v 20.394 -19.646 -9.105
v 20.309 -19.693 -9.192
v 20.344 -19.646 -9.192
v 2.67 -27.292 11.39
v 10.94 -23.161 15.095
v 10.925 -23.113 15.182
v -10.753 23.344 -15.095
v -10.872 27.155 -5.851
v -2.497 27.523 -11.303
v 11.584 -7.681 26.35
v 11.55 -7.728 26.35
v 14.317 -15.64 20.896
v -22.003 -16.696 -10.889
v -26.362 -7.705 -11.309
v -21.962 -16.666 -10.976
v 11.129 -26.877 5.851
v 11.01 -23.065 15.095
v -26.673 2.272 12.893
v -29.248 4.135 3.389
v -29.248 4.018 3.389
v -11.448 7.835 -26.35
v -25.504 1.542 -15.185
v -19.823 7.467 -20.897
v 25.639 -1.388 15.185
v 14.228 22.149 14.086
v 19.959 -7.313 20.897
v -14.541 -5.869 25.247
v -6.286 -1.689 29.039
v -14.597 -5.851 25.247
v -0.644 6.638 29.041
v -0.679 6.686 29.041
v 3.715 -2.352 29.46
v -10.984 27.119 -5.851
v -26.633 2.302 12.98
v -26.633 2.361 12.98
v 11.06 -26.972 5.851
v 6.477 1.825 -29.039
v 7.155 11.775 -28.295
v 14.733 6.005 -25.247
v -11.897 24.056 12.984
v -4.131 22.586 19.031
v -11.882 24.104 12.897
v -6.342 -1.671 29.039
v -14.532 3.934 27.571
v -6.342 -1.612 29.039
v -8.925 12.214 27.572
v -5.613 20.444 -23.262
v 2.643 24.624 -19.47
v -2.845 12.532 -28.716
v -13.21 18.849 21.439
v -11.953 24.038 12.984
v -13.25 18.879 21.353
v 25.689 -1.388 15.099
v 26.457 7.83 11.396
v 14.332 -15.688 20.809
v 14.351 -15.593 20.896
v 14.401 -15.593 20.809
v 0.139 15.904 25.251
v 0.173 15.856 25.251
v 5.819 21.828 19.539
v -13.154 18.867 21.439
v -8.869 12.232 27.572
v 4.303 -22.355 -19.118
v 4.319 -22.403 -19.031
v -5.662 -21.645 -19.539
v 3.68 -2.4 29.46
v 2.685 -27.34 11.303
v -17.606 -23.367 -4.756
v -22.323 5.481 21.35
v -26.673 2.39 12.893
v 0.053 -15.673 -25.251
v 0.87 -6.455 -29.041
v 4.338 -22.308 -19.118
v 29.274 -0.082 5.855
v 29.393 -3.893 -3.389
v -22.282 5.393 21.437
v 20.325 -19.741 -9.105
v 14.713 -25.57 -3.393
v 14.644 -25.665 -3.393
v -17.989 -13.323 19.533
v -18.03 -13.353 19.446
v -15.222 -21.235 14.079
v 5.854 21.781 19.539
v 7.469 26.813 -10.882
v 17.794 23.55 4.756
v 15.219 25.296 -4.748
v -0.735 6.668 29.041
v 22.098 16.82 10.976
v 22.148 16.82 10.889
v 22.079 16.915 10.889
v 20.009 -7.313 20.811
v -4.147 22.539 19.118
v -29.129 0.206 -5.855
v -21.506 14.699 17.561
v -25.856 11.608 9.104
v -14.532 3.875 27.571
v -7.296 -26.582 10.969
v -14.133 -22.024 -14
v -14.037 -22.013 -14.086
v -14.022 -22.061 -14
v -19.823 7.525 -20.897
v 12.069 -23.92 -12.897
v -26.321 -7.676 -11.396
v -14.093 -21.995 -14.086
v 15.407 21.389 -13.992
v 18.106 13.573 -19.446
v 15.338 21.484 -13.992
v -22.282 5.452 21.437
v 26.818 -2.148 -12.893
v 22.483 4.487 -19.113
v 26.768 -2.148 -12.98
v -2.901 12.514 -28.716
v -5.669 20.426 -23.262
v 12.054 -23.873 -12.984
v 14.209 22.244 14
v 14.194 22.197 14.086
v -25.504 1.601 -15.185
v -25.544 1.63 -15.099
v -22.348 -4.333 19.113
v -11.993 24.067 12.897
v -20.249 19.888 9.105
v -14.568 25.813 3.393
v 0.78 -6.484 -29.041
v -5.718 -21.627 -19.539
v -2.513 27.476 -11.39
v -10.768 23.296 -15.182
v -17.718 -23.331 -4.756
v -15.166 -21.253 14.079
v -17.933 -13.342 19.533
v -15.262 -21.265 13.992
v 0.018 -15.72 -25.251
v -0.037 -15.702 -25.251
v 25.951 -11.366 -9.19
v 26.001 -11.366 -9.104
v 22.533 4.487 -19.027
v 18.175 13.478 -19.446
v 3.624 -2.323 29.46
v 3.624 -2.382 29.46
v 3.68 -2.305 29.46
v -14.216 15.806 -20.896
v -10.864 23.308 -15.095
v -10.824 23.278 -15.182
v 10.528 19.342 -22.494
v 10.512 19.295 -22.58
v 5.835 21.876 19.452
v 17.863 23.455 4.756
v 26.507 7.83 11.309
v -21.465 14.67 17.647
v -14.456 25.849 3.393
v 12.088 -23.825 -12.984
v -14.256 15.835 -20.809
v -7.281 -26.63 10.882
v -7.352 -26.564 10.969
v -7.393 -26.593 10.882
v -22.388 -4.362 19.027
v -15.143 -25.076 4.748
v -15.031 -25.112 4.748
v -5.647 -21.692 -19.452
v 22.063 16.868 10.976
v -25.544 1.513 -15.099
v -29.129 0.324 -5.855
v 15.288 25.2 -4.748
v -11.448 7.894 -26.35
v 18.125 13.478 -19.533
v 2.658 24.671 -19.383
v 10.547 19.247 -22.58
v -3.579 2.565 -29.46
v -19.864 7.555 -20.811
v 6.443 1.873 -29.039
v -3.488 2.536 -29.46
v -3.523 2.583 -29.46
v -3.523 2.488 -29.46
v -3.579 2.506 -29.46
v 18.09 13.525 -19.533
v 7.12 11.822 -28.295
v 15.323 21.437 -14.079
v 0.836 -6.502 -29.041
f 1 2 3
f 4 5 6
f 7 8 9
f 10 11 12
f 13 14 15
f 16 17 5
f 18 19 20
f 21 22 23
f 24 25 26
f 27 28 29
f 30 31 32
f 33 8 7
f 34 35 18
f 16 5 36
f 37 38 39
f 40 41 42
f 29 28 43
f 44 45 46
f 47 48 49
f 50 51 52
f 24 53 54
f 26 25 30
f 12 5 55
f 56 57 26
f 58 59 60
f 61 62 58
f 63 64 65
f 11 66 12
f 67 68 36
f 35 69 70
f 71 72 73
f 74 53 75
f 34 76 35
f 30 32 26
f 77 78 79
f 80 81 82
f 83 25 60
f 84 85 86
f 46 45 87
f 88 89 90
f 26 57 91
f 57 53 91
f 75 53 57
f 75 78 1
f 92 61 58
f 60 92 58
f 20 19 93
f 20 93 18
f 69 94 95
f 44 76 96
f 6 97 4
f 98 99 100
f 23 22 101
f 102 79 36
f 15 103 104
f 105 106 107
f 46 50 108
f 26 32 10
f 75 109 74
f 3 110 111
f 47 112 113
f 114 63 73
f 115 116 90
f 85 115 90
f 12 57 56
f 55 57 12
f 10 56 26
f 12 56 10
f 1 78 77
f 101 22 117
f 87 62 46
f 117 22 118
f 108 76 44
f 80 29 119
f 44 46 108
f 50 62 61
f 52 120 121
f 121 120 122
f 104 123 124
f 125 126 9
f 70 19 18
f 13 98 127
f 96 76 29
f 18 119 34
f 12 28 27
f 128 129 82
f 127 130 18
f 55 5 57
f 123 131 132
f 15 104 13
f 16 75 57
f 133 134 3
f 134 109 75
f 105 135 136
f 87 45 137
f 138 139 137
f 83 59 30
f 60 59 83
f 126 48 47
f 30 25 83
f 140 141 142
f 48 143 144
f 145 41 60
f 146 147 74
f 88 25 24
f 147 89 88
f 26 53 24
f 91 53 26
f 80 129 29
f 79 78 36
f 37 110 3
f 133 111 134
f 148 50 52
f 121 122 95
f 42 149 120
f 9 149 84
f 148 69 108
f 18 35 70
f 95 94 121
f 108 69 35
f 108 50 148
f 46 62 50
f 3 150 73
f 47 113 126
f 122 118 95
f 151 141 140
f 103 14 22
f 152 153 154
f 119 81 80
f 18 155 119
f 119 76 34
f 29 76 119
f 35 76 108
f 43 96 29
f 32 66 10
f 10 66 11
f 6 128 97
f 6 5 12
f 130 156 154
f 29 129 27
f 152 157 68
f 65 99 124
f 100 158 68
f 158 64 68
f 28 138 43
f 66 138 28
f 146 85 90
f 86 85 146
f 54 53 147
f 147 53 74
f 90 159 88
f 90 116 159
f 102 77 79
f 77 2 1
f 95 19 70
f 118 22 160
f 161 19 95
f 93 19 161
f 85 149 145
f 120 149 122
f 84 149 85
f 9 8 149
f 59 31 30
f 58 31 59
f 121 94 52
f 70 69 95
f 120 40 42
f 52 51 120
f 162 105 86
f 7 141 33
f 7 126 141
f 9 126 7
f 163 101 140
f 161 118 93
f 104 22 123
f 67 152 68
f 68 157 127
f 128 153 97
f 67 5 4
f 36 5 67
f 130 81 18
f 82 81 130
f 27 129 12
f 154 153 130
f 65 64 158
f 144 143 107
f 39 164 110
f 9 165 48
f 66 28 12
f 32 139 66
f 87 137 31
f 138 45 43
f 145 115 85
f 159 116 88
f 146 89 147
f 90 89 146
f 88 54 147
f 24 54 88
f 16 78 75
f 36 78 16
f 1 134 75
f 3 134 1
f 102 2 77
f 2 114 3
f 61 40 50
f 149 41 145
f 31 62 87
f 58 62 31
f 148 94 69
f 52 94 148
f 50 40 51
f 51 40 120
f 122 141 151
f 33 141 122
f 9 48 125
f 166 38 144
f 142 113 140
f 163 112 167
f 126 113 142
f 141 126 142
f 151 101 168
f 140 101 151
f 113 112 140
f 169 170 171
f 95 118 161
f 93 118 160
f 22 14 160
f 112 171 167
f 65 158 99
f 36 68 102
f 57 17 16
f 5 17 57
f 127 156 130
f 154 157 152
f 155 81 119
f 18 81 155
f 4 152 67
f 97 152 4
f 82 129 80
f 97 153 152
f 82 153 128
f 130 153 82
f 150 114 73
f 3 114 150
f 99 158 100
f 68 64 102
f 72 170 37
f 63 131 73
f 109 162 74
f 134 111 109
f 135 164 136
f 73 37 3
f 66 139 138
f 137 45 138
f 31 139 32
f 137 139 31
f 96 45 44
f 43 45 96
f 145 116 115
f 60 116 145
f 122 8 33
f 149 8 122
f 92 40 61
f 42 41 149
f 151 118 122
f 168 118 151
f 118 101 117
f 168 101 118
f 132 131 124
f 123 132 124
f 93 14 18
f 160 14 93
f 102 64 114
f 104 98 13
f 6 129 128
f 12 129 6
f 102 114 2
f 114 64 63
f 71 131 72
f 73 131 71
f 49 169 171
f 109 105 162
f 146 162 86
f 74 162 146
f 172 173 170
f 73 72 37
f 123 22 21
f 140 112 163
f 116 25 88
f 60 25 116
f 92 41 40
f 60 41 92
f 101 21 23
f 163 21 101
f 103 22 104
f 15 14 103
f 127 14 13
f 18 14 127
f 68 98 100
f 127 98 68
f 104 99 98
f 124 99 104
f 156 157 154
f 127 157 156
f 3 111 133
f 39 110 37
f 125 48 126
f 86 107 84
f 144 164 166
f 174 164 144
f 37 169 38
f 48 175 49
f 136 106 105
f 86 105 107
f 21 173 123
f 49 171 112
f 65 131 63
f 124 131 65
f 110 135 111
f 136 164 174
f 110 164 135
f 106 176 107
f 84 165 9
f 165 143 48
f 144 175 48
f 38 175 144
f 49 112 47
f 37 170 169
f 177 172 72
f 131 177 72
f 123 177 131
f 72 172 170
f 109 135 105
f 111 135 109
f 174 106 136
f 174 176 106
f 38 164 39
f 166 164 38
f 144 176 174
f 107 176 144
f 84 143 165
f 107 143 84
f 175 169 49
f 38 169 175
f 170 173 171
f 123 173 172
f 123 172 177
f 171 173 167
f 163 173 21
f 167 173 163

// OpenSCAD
// Auto-generated OpenSCAD file

    inner_points = 10*[[-1.4487143990499982, 2.5753825704945696, 0.3393075595010162], [1.102866452168368, -2.6876538321967396, 0.585057055716785], [-1.090261602560301, 2.7060028247507986, -0.585057055716785], [1.4613192486580653, -2.5570335779405107, -0.3393075595010162], [-2.628060976189026, -0.7646488526687646, -1.130908640848898], [-2.192198931774896, -1.6636828006652273, -1.0889296152643466], [2.2048037813829633, 1.6820317932192868, 1.0889296152643466], [2.640665825797093, 0.782997845222824, 1.130908640848898], [-1.4556831147710878, -0.5821291224034855, 2.5160655338088227], [0.6427361059669467, 0.18253516486993837, -2.8952591776693413], [-0.6301312563588797, -0.16418617231587906, 2.8952591776693413], [1.4682879643791549, 0.6004781149575449, -2.5160655338088227], [-2.0167959533705173, 1.9829203214969908, 0.9105096525937446], [0.26540733999390004, -2.724482544292499, 1.1303146841836589], [-1.078354348798041, 2.3248885867589517, -1.5095083280441774], [1.2038489445663763, -2.3825142790305383, -1.2897032964542632], [-1.1912440949583092, 2.4008632715845972, 1.2897032964542632], [1.090959198406108, -2.3065395942048927, 1.5095083280441774], [-0.25280249038583286, 2.742831536846558, -1.1303146841836589], [2.0294008029785844, -1.9645713289429314, -0.9105096525937446], [-2.904797621580721, 0.026526236908532792, -0.5855107982333385], [-1.7636959748985122, -2.327175195986212, -0.47560828243838127], [-2.5463448250910243, 0.15714649116476193, -1.5098754134511396], [-1.4052431784088153, -2.1965549417299832, -1.3999728976561825], [1.4178480280168824, 2.214903934284042, 1.3999728976561825], [2.5589496746990914, -0.13879749861070262, 1.5098754134511396], [1.7763008245065792, 2.345524188540271, 0.47560828243838127], [2.917402471188788, -0.008177244354473472, 0.5855107982333385], [-2.230731614374909, -0.43037121933057704, 1.902657543873266], [-1.7948695699607788, -1.3294051673270397, 1.9446365694578178], [-0.353848405229956, 0.2535653111933443, -2.937378417402578], [0.08201363918417413, -0.6454686368031184, -2.8953993918180263], [-0.06940878957610698, 0.6638176293571778, 2.8953993918180263], [0.36645325483802316, -0.23521631863928497, 2.937378417402578], [1.807474419568846, 1.3477541598810991, -1.9446365694578178], [2.2433364639829763, 0.44872021188463634, -1.902657543873266], [-2.5775184201532904, 1.1549165198239344, 0.910369438445059], [-0.7311771712030029, -2.653452397969093, 1.088195444450422], [-1.4175408039877317, 1.5776125418353975, -2.0809372923951823], [0.4288004449625556, -2.23075637595763, -1.9031112863898194], [-0.4161955953544884, 2.249105368511689, 1.9031112863898194], [1.4301456535957988, -1.559263549281338, 2.0809372923951823], [0.7437820208110699, 2.671801390523152, -1.088195444450422], [2.5901232697613574, -1.136567527269875, -0.910369438445059], [-2.916704875342981, 0.4076404749003801, 0.33894047409405403], [-1.506225670806824, -2.5016944948961846, 0.4747874545148656], [-1.9782632707705046, 0.7496087401623407, -2.081077506543868], [-0.5677840662343473, -2.159726229634224, -1.9452305261230565], [0.5803889158424144, 2.178075222188283, 1.9452305261230565], [1.9908681203785716, -0.7312597476082813, 2.081077506543868], [1.518830520414891, 2.5200434874502435, -0.4747874545148656], [2.929309724951048, -0.38929148234632077, -0.33894047409405403], [-2.659234571251292, 0.23312117599040766, 1.289336211047301], [-1.5181329245690836, -2.1205802569043377, 1.3992387268422581], [-1.140804158596037, 0.7864374522581001, -2.6263351350107422], [0.0002974880861718451, -1.5672639806366448, -2.516432619215785], [0.012307361521895308, 1.5856129731907043, 2.516432619215785], [1.153409008204104, -0.7680884597040407, 2.6263351350107422], [1.5307377741771506, 2.1389292494583967, -1.3992387268422581], [2.671839420859359, -0.21477218343634835, -1.289336211047301], [-2.2241986003144585, 0.5422344662013506, 2.1350268624122144], [-0.28608434351159595, 1.2484835999237276, -2.8629094259414605], [-0.8884276339278647, 1.218480364801499, 2.748575066496456], [1.0496866228749977, 1.9247294985238759, -2.2493612218572188], [-2.1424824492164563, 1.4640298100348774, 1.7560600898099725], [-0.5628209889032914, 2.039658689501025, -2.317511583325901], [-1.3169305908042483, 1.8819727601224838, 2.135253733670491], [0.26273086950891694, 2.4576016395886318, -1.9383179394653824], [-1.4491501007106375, 0.39047656312844187, 2.7484348523477706], [0.7105001676853069, 1.1774534536003218, -2.820790186208224]];

    outer_points = 10*[[1.306878914065968, 0.6964890807624852, 2.5738294275574076], [-1.3374470976514352, 0.3012289421252946, -2.6340318607074473], [1.3374470976514352, -0.3012289421252946, 2.6340318607074473], [-1.306878914065968, -0.6964890807624852, -2.5738294275574076], [2.8357387496386, 0.03375924615901473, -0.8803825957553844], [2.3840339404359963, -0.03375924615901473, -1.76999150900791], [-2.3840339404359963, 0.03375924615901473, 1.76999150900791], [-2.8357387496386, -0.03375924615901473, 0.8803825957553844], [0.3563471799807295, 2.92037151977505, -0.40258456455588854], [0.5352964436130941, -2.92037151977505, -0.05015338227922686], [-0.5352964436130941, 2.92037151977505, 0.05015338227922686], [-0.3563471799807295, -2.92037151977505, 0.40258456455588854], [1.5883860833705659, 1.4827955553120262, 2.0238513900762873], [-0.7767710033778418, 1.1292641397965266, -2.6342013531036494], [1.6684146269716655, -1.1292641397965266, 2.1814634062685343], [-0.6967424597767421, -1.4827955553120262, -2.4765893369114025], [0.6967424597767421, 1.4827955553120262, 2.4765893369114025], [-1.6684146269716655, 1.1292641397965266, -2.1814634062685343], [0.7767710033778418, -1.1292641397965266, 2.6342013531036494], [-1.5883860833705659, -1.4827955553120262, -2.0238513900762873], [2.9103584923151162, 0.5872418653227648, -0.05087136359121058], [1.7277799489409125, 0.410476157565015, -2.3798977351811788], [2.9409266759005837, -0.410476157565015, 0.00933106955882912], [1.75834813252638, -0.5872418653227648, -2.319695302031139], [-1.75834813252638, 0.5872418653227648, 2.319695302031139], [-2.9409266759005837, 0.410476157565015, -0.00933106955882912], [-1.7277799489409125, -0.410476157565015, 2.3798977351811788], [-2.9103584923151162, -0.5872418653227648, 0.05087136359121058], [1.3130005172105763, 2.6458189412675677, -0.30544922597157165], [0.8612957080079724, 2.578300448949538, -1.195058139224097], [1.4730576044127757, -2.578300448949538, 0.009774806412922166], [1.0213527952101717, -2.6458189412675677, -0.8798341068396033], [-1.0213527952101717, 2.6458189412675677, 0.8798341068396033], [-1.4730576044127757, 2.578300448949538, -0.009774806412922166], [-0.8612957080079724, -2.578300448949538, 1.195058139224097], [-1.3130005172105763, -2.6458189412675677, 0.30544922597157165], [2.074442434967643, 1.7573481338195083, 1.194170665515911], [0.16099015742183997, 1.4713352106220383, -2.5742731644115002], [2.173363154998908, -1.4713352106220383, 1.3889898316003255], [0.2599108774531048, -1.7573481338195083, -2.3794539983270857], [-0.2599108774531048, 1.7573481338195083, 2.3794539983270857], [-2.173363154998908, 1.4713352106220383, -1.3889898316003255], [-0.16099015742183997, -1.4713352106220383, 2.5742731644115002], [-2.074442434967643, -1.7573481338195083, -1.194170665515911], [2.579390962994886, 1.4152770629939968, 0.40169709084770233], [1.1176434946516864, 1.196782632114556, -2.477137825827184], [2.659419506595986, -1.196782632114556, 0.5593091070399493], [1.1976720382527861, -1.4152770629939968, -2.319525809634937], [-1.1976720382527861, 1.4152770629939968, 2.319525809634937], [-2.659419506595986, 1.196782632114556, -0.5593091070399493], [-1.1176434946516864, -1.196782632114556, 2.477137825827184], [-2.579390962994886, -1.4152770629939968, -0.40169709084770233], [1.96925450870566, 2.201583537543538, 0.3044570002016973], [0.7866759653314565, 2.024817829785788, -2.024569371388271], [2.0987434123223925, -2.024817829785788, 0.5594785994361517], [0.9161648689481887, -2.201583537543538, -1.7695477721538164], [-0.9161648689481887, 2.201583537543538, 1.7695477721538164], [-2.0987434123223925, 2.024817829785788, -0.5594785994361517], [-0.7866759653314565, -2.024817829785788, 2.024569371388271], [-1.96925450870566, -2.201583537543538, -0.3044570002016973], [1.2538486107021445, 2.7892218999452805, 0.6824458309038517], [1.4191273670453497, -2.6053280752940653, 1.0079536665936386], [-0.18886107812477992, 2.7892218999452805, 1.4149912168799113], [-0.02358232178157471, -2.6053280752940653, 1.7404990525696982], [1.3590365369641275, 2.3449864962212508, 1.5721594962180654], [1.4937471097218653, -2.0518454561303154, 1.837464898757812], [0.467392913370304, 2.3449864962212508, 2.0248974430531805], [0.6021034861280418, -2.0518454561303154, 2.290202845592927], [0.29719527347229757, 3.0637744784527623, 0.5853104923195349], [0.481366206245668, -2.9473991461195768, 0.9480254779014893]];

    // Convex hull for inner set (I)
    module inner_hull() {
        hull() {
            for (p = inner_points) {
                translate(p) sphere(r=0.1);
            }
        }
    }

    // Convex hull for outer set (O) minus inner hull (O \ I)
    module outer_minus_inner() {
        difference() {
            hull() {
                for (p = outer_points) {
                    translate(p) sphere(r=0.1);
                }
            }
            inner_hull(); // Subtract inner hull
        }
    }

    // Convex hull for outer set (O) minus all translated inner hulls
    module outer_minus_AllTranslationInner() {
        difference() {
            hull() {
                for (p = outer_points) {
                    translate(p) sphere(r=0.1);
                }
            }
            hull() {
                translate([0,0,50]) inner_hull();
                translate([0,0,-50]) inner_hull();
            }; // Subtract translated inner hulls
        }
    }

    // Difference between outer_minus_inner and outer_minus_AllTranslationInner
    module outer_minus_inner_diff() {
        difference() {
            // Outer minus inner
            difference() {
                hull() {
                    for (p = outer_points) {
                        translate(p) sphere(r=0.1);
                    }
                }
                inner_hull();
            }

            // Subtract Outer minus AllTranslationInner
            difference() {
                hull() {
                    for (p = outer_points) {
                        translate(p) sphere(r=0.1);
                    }
                }
                hull() {
                    translate([0,0,50]) inner_hull();
                    translate([0,0,-50]) inner_hull();
                };
            }
        }
    }

    // Rendering all with colors applied
    color([1, 0, 0, 0.5]) inner_hull(); // Transparent red
    
